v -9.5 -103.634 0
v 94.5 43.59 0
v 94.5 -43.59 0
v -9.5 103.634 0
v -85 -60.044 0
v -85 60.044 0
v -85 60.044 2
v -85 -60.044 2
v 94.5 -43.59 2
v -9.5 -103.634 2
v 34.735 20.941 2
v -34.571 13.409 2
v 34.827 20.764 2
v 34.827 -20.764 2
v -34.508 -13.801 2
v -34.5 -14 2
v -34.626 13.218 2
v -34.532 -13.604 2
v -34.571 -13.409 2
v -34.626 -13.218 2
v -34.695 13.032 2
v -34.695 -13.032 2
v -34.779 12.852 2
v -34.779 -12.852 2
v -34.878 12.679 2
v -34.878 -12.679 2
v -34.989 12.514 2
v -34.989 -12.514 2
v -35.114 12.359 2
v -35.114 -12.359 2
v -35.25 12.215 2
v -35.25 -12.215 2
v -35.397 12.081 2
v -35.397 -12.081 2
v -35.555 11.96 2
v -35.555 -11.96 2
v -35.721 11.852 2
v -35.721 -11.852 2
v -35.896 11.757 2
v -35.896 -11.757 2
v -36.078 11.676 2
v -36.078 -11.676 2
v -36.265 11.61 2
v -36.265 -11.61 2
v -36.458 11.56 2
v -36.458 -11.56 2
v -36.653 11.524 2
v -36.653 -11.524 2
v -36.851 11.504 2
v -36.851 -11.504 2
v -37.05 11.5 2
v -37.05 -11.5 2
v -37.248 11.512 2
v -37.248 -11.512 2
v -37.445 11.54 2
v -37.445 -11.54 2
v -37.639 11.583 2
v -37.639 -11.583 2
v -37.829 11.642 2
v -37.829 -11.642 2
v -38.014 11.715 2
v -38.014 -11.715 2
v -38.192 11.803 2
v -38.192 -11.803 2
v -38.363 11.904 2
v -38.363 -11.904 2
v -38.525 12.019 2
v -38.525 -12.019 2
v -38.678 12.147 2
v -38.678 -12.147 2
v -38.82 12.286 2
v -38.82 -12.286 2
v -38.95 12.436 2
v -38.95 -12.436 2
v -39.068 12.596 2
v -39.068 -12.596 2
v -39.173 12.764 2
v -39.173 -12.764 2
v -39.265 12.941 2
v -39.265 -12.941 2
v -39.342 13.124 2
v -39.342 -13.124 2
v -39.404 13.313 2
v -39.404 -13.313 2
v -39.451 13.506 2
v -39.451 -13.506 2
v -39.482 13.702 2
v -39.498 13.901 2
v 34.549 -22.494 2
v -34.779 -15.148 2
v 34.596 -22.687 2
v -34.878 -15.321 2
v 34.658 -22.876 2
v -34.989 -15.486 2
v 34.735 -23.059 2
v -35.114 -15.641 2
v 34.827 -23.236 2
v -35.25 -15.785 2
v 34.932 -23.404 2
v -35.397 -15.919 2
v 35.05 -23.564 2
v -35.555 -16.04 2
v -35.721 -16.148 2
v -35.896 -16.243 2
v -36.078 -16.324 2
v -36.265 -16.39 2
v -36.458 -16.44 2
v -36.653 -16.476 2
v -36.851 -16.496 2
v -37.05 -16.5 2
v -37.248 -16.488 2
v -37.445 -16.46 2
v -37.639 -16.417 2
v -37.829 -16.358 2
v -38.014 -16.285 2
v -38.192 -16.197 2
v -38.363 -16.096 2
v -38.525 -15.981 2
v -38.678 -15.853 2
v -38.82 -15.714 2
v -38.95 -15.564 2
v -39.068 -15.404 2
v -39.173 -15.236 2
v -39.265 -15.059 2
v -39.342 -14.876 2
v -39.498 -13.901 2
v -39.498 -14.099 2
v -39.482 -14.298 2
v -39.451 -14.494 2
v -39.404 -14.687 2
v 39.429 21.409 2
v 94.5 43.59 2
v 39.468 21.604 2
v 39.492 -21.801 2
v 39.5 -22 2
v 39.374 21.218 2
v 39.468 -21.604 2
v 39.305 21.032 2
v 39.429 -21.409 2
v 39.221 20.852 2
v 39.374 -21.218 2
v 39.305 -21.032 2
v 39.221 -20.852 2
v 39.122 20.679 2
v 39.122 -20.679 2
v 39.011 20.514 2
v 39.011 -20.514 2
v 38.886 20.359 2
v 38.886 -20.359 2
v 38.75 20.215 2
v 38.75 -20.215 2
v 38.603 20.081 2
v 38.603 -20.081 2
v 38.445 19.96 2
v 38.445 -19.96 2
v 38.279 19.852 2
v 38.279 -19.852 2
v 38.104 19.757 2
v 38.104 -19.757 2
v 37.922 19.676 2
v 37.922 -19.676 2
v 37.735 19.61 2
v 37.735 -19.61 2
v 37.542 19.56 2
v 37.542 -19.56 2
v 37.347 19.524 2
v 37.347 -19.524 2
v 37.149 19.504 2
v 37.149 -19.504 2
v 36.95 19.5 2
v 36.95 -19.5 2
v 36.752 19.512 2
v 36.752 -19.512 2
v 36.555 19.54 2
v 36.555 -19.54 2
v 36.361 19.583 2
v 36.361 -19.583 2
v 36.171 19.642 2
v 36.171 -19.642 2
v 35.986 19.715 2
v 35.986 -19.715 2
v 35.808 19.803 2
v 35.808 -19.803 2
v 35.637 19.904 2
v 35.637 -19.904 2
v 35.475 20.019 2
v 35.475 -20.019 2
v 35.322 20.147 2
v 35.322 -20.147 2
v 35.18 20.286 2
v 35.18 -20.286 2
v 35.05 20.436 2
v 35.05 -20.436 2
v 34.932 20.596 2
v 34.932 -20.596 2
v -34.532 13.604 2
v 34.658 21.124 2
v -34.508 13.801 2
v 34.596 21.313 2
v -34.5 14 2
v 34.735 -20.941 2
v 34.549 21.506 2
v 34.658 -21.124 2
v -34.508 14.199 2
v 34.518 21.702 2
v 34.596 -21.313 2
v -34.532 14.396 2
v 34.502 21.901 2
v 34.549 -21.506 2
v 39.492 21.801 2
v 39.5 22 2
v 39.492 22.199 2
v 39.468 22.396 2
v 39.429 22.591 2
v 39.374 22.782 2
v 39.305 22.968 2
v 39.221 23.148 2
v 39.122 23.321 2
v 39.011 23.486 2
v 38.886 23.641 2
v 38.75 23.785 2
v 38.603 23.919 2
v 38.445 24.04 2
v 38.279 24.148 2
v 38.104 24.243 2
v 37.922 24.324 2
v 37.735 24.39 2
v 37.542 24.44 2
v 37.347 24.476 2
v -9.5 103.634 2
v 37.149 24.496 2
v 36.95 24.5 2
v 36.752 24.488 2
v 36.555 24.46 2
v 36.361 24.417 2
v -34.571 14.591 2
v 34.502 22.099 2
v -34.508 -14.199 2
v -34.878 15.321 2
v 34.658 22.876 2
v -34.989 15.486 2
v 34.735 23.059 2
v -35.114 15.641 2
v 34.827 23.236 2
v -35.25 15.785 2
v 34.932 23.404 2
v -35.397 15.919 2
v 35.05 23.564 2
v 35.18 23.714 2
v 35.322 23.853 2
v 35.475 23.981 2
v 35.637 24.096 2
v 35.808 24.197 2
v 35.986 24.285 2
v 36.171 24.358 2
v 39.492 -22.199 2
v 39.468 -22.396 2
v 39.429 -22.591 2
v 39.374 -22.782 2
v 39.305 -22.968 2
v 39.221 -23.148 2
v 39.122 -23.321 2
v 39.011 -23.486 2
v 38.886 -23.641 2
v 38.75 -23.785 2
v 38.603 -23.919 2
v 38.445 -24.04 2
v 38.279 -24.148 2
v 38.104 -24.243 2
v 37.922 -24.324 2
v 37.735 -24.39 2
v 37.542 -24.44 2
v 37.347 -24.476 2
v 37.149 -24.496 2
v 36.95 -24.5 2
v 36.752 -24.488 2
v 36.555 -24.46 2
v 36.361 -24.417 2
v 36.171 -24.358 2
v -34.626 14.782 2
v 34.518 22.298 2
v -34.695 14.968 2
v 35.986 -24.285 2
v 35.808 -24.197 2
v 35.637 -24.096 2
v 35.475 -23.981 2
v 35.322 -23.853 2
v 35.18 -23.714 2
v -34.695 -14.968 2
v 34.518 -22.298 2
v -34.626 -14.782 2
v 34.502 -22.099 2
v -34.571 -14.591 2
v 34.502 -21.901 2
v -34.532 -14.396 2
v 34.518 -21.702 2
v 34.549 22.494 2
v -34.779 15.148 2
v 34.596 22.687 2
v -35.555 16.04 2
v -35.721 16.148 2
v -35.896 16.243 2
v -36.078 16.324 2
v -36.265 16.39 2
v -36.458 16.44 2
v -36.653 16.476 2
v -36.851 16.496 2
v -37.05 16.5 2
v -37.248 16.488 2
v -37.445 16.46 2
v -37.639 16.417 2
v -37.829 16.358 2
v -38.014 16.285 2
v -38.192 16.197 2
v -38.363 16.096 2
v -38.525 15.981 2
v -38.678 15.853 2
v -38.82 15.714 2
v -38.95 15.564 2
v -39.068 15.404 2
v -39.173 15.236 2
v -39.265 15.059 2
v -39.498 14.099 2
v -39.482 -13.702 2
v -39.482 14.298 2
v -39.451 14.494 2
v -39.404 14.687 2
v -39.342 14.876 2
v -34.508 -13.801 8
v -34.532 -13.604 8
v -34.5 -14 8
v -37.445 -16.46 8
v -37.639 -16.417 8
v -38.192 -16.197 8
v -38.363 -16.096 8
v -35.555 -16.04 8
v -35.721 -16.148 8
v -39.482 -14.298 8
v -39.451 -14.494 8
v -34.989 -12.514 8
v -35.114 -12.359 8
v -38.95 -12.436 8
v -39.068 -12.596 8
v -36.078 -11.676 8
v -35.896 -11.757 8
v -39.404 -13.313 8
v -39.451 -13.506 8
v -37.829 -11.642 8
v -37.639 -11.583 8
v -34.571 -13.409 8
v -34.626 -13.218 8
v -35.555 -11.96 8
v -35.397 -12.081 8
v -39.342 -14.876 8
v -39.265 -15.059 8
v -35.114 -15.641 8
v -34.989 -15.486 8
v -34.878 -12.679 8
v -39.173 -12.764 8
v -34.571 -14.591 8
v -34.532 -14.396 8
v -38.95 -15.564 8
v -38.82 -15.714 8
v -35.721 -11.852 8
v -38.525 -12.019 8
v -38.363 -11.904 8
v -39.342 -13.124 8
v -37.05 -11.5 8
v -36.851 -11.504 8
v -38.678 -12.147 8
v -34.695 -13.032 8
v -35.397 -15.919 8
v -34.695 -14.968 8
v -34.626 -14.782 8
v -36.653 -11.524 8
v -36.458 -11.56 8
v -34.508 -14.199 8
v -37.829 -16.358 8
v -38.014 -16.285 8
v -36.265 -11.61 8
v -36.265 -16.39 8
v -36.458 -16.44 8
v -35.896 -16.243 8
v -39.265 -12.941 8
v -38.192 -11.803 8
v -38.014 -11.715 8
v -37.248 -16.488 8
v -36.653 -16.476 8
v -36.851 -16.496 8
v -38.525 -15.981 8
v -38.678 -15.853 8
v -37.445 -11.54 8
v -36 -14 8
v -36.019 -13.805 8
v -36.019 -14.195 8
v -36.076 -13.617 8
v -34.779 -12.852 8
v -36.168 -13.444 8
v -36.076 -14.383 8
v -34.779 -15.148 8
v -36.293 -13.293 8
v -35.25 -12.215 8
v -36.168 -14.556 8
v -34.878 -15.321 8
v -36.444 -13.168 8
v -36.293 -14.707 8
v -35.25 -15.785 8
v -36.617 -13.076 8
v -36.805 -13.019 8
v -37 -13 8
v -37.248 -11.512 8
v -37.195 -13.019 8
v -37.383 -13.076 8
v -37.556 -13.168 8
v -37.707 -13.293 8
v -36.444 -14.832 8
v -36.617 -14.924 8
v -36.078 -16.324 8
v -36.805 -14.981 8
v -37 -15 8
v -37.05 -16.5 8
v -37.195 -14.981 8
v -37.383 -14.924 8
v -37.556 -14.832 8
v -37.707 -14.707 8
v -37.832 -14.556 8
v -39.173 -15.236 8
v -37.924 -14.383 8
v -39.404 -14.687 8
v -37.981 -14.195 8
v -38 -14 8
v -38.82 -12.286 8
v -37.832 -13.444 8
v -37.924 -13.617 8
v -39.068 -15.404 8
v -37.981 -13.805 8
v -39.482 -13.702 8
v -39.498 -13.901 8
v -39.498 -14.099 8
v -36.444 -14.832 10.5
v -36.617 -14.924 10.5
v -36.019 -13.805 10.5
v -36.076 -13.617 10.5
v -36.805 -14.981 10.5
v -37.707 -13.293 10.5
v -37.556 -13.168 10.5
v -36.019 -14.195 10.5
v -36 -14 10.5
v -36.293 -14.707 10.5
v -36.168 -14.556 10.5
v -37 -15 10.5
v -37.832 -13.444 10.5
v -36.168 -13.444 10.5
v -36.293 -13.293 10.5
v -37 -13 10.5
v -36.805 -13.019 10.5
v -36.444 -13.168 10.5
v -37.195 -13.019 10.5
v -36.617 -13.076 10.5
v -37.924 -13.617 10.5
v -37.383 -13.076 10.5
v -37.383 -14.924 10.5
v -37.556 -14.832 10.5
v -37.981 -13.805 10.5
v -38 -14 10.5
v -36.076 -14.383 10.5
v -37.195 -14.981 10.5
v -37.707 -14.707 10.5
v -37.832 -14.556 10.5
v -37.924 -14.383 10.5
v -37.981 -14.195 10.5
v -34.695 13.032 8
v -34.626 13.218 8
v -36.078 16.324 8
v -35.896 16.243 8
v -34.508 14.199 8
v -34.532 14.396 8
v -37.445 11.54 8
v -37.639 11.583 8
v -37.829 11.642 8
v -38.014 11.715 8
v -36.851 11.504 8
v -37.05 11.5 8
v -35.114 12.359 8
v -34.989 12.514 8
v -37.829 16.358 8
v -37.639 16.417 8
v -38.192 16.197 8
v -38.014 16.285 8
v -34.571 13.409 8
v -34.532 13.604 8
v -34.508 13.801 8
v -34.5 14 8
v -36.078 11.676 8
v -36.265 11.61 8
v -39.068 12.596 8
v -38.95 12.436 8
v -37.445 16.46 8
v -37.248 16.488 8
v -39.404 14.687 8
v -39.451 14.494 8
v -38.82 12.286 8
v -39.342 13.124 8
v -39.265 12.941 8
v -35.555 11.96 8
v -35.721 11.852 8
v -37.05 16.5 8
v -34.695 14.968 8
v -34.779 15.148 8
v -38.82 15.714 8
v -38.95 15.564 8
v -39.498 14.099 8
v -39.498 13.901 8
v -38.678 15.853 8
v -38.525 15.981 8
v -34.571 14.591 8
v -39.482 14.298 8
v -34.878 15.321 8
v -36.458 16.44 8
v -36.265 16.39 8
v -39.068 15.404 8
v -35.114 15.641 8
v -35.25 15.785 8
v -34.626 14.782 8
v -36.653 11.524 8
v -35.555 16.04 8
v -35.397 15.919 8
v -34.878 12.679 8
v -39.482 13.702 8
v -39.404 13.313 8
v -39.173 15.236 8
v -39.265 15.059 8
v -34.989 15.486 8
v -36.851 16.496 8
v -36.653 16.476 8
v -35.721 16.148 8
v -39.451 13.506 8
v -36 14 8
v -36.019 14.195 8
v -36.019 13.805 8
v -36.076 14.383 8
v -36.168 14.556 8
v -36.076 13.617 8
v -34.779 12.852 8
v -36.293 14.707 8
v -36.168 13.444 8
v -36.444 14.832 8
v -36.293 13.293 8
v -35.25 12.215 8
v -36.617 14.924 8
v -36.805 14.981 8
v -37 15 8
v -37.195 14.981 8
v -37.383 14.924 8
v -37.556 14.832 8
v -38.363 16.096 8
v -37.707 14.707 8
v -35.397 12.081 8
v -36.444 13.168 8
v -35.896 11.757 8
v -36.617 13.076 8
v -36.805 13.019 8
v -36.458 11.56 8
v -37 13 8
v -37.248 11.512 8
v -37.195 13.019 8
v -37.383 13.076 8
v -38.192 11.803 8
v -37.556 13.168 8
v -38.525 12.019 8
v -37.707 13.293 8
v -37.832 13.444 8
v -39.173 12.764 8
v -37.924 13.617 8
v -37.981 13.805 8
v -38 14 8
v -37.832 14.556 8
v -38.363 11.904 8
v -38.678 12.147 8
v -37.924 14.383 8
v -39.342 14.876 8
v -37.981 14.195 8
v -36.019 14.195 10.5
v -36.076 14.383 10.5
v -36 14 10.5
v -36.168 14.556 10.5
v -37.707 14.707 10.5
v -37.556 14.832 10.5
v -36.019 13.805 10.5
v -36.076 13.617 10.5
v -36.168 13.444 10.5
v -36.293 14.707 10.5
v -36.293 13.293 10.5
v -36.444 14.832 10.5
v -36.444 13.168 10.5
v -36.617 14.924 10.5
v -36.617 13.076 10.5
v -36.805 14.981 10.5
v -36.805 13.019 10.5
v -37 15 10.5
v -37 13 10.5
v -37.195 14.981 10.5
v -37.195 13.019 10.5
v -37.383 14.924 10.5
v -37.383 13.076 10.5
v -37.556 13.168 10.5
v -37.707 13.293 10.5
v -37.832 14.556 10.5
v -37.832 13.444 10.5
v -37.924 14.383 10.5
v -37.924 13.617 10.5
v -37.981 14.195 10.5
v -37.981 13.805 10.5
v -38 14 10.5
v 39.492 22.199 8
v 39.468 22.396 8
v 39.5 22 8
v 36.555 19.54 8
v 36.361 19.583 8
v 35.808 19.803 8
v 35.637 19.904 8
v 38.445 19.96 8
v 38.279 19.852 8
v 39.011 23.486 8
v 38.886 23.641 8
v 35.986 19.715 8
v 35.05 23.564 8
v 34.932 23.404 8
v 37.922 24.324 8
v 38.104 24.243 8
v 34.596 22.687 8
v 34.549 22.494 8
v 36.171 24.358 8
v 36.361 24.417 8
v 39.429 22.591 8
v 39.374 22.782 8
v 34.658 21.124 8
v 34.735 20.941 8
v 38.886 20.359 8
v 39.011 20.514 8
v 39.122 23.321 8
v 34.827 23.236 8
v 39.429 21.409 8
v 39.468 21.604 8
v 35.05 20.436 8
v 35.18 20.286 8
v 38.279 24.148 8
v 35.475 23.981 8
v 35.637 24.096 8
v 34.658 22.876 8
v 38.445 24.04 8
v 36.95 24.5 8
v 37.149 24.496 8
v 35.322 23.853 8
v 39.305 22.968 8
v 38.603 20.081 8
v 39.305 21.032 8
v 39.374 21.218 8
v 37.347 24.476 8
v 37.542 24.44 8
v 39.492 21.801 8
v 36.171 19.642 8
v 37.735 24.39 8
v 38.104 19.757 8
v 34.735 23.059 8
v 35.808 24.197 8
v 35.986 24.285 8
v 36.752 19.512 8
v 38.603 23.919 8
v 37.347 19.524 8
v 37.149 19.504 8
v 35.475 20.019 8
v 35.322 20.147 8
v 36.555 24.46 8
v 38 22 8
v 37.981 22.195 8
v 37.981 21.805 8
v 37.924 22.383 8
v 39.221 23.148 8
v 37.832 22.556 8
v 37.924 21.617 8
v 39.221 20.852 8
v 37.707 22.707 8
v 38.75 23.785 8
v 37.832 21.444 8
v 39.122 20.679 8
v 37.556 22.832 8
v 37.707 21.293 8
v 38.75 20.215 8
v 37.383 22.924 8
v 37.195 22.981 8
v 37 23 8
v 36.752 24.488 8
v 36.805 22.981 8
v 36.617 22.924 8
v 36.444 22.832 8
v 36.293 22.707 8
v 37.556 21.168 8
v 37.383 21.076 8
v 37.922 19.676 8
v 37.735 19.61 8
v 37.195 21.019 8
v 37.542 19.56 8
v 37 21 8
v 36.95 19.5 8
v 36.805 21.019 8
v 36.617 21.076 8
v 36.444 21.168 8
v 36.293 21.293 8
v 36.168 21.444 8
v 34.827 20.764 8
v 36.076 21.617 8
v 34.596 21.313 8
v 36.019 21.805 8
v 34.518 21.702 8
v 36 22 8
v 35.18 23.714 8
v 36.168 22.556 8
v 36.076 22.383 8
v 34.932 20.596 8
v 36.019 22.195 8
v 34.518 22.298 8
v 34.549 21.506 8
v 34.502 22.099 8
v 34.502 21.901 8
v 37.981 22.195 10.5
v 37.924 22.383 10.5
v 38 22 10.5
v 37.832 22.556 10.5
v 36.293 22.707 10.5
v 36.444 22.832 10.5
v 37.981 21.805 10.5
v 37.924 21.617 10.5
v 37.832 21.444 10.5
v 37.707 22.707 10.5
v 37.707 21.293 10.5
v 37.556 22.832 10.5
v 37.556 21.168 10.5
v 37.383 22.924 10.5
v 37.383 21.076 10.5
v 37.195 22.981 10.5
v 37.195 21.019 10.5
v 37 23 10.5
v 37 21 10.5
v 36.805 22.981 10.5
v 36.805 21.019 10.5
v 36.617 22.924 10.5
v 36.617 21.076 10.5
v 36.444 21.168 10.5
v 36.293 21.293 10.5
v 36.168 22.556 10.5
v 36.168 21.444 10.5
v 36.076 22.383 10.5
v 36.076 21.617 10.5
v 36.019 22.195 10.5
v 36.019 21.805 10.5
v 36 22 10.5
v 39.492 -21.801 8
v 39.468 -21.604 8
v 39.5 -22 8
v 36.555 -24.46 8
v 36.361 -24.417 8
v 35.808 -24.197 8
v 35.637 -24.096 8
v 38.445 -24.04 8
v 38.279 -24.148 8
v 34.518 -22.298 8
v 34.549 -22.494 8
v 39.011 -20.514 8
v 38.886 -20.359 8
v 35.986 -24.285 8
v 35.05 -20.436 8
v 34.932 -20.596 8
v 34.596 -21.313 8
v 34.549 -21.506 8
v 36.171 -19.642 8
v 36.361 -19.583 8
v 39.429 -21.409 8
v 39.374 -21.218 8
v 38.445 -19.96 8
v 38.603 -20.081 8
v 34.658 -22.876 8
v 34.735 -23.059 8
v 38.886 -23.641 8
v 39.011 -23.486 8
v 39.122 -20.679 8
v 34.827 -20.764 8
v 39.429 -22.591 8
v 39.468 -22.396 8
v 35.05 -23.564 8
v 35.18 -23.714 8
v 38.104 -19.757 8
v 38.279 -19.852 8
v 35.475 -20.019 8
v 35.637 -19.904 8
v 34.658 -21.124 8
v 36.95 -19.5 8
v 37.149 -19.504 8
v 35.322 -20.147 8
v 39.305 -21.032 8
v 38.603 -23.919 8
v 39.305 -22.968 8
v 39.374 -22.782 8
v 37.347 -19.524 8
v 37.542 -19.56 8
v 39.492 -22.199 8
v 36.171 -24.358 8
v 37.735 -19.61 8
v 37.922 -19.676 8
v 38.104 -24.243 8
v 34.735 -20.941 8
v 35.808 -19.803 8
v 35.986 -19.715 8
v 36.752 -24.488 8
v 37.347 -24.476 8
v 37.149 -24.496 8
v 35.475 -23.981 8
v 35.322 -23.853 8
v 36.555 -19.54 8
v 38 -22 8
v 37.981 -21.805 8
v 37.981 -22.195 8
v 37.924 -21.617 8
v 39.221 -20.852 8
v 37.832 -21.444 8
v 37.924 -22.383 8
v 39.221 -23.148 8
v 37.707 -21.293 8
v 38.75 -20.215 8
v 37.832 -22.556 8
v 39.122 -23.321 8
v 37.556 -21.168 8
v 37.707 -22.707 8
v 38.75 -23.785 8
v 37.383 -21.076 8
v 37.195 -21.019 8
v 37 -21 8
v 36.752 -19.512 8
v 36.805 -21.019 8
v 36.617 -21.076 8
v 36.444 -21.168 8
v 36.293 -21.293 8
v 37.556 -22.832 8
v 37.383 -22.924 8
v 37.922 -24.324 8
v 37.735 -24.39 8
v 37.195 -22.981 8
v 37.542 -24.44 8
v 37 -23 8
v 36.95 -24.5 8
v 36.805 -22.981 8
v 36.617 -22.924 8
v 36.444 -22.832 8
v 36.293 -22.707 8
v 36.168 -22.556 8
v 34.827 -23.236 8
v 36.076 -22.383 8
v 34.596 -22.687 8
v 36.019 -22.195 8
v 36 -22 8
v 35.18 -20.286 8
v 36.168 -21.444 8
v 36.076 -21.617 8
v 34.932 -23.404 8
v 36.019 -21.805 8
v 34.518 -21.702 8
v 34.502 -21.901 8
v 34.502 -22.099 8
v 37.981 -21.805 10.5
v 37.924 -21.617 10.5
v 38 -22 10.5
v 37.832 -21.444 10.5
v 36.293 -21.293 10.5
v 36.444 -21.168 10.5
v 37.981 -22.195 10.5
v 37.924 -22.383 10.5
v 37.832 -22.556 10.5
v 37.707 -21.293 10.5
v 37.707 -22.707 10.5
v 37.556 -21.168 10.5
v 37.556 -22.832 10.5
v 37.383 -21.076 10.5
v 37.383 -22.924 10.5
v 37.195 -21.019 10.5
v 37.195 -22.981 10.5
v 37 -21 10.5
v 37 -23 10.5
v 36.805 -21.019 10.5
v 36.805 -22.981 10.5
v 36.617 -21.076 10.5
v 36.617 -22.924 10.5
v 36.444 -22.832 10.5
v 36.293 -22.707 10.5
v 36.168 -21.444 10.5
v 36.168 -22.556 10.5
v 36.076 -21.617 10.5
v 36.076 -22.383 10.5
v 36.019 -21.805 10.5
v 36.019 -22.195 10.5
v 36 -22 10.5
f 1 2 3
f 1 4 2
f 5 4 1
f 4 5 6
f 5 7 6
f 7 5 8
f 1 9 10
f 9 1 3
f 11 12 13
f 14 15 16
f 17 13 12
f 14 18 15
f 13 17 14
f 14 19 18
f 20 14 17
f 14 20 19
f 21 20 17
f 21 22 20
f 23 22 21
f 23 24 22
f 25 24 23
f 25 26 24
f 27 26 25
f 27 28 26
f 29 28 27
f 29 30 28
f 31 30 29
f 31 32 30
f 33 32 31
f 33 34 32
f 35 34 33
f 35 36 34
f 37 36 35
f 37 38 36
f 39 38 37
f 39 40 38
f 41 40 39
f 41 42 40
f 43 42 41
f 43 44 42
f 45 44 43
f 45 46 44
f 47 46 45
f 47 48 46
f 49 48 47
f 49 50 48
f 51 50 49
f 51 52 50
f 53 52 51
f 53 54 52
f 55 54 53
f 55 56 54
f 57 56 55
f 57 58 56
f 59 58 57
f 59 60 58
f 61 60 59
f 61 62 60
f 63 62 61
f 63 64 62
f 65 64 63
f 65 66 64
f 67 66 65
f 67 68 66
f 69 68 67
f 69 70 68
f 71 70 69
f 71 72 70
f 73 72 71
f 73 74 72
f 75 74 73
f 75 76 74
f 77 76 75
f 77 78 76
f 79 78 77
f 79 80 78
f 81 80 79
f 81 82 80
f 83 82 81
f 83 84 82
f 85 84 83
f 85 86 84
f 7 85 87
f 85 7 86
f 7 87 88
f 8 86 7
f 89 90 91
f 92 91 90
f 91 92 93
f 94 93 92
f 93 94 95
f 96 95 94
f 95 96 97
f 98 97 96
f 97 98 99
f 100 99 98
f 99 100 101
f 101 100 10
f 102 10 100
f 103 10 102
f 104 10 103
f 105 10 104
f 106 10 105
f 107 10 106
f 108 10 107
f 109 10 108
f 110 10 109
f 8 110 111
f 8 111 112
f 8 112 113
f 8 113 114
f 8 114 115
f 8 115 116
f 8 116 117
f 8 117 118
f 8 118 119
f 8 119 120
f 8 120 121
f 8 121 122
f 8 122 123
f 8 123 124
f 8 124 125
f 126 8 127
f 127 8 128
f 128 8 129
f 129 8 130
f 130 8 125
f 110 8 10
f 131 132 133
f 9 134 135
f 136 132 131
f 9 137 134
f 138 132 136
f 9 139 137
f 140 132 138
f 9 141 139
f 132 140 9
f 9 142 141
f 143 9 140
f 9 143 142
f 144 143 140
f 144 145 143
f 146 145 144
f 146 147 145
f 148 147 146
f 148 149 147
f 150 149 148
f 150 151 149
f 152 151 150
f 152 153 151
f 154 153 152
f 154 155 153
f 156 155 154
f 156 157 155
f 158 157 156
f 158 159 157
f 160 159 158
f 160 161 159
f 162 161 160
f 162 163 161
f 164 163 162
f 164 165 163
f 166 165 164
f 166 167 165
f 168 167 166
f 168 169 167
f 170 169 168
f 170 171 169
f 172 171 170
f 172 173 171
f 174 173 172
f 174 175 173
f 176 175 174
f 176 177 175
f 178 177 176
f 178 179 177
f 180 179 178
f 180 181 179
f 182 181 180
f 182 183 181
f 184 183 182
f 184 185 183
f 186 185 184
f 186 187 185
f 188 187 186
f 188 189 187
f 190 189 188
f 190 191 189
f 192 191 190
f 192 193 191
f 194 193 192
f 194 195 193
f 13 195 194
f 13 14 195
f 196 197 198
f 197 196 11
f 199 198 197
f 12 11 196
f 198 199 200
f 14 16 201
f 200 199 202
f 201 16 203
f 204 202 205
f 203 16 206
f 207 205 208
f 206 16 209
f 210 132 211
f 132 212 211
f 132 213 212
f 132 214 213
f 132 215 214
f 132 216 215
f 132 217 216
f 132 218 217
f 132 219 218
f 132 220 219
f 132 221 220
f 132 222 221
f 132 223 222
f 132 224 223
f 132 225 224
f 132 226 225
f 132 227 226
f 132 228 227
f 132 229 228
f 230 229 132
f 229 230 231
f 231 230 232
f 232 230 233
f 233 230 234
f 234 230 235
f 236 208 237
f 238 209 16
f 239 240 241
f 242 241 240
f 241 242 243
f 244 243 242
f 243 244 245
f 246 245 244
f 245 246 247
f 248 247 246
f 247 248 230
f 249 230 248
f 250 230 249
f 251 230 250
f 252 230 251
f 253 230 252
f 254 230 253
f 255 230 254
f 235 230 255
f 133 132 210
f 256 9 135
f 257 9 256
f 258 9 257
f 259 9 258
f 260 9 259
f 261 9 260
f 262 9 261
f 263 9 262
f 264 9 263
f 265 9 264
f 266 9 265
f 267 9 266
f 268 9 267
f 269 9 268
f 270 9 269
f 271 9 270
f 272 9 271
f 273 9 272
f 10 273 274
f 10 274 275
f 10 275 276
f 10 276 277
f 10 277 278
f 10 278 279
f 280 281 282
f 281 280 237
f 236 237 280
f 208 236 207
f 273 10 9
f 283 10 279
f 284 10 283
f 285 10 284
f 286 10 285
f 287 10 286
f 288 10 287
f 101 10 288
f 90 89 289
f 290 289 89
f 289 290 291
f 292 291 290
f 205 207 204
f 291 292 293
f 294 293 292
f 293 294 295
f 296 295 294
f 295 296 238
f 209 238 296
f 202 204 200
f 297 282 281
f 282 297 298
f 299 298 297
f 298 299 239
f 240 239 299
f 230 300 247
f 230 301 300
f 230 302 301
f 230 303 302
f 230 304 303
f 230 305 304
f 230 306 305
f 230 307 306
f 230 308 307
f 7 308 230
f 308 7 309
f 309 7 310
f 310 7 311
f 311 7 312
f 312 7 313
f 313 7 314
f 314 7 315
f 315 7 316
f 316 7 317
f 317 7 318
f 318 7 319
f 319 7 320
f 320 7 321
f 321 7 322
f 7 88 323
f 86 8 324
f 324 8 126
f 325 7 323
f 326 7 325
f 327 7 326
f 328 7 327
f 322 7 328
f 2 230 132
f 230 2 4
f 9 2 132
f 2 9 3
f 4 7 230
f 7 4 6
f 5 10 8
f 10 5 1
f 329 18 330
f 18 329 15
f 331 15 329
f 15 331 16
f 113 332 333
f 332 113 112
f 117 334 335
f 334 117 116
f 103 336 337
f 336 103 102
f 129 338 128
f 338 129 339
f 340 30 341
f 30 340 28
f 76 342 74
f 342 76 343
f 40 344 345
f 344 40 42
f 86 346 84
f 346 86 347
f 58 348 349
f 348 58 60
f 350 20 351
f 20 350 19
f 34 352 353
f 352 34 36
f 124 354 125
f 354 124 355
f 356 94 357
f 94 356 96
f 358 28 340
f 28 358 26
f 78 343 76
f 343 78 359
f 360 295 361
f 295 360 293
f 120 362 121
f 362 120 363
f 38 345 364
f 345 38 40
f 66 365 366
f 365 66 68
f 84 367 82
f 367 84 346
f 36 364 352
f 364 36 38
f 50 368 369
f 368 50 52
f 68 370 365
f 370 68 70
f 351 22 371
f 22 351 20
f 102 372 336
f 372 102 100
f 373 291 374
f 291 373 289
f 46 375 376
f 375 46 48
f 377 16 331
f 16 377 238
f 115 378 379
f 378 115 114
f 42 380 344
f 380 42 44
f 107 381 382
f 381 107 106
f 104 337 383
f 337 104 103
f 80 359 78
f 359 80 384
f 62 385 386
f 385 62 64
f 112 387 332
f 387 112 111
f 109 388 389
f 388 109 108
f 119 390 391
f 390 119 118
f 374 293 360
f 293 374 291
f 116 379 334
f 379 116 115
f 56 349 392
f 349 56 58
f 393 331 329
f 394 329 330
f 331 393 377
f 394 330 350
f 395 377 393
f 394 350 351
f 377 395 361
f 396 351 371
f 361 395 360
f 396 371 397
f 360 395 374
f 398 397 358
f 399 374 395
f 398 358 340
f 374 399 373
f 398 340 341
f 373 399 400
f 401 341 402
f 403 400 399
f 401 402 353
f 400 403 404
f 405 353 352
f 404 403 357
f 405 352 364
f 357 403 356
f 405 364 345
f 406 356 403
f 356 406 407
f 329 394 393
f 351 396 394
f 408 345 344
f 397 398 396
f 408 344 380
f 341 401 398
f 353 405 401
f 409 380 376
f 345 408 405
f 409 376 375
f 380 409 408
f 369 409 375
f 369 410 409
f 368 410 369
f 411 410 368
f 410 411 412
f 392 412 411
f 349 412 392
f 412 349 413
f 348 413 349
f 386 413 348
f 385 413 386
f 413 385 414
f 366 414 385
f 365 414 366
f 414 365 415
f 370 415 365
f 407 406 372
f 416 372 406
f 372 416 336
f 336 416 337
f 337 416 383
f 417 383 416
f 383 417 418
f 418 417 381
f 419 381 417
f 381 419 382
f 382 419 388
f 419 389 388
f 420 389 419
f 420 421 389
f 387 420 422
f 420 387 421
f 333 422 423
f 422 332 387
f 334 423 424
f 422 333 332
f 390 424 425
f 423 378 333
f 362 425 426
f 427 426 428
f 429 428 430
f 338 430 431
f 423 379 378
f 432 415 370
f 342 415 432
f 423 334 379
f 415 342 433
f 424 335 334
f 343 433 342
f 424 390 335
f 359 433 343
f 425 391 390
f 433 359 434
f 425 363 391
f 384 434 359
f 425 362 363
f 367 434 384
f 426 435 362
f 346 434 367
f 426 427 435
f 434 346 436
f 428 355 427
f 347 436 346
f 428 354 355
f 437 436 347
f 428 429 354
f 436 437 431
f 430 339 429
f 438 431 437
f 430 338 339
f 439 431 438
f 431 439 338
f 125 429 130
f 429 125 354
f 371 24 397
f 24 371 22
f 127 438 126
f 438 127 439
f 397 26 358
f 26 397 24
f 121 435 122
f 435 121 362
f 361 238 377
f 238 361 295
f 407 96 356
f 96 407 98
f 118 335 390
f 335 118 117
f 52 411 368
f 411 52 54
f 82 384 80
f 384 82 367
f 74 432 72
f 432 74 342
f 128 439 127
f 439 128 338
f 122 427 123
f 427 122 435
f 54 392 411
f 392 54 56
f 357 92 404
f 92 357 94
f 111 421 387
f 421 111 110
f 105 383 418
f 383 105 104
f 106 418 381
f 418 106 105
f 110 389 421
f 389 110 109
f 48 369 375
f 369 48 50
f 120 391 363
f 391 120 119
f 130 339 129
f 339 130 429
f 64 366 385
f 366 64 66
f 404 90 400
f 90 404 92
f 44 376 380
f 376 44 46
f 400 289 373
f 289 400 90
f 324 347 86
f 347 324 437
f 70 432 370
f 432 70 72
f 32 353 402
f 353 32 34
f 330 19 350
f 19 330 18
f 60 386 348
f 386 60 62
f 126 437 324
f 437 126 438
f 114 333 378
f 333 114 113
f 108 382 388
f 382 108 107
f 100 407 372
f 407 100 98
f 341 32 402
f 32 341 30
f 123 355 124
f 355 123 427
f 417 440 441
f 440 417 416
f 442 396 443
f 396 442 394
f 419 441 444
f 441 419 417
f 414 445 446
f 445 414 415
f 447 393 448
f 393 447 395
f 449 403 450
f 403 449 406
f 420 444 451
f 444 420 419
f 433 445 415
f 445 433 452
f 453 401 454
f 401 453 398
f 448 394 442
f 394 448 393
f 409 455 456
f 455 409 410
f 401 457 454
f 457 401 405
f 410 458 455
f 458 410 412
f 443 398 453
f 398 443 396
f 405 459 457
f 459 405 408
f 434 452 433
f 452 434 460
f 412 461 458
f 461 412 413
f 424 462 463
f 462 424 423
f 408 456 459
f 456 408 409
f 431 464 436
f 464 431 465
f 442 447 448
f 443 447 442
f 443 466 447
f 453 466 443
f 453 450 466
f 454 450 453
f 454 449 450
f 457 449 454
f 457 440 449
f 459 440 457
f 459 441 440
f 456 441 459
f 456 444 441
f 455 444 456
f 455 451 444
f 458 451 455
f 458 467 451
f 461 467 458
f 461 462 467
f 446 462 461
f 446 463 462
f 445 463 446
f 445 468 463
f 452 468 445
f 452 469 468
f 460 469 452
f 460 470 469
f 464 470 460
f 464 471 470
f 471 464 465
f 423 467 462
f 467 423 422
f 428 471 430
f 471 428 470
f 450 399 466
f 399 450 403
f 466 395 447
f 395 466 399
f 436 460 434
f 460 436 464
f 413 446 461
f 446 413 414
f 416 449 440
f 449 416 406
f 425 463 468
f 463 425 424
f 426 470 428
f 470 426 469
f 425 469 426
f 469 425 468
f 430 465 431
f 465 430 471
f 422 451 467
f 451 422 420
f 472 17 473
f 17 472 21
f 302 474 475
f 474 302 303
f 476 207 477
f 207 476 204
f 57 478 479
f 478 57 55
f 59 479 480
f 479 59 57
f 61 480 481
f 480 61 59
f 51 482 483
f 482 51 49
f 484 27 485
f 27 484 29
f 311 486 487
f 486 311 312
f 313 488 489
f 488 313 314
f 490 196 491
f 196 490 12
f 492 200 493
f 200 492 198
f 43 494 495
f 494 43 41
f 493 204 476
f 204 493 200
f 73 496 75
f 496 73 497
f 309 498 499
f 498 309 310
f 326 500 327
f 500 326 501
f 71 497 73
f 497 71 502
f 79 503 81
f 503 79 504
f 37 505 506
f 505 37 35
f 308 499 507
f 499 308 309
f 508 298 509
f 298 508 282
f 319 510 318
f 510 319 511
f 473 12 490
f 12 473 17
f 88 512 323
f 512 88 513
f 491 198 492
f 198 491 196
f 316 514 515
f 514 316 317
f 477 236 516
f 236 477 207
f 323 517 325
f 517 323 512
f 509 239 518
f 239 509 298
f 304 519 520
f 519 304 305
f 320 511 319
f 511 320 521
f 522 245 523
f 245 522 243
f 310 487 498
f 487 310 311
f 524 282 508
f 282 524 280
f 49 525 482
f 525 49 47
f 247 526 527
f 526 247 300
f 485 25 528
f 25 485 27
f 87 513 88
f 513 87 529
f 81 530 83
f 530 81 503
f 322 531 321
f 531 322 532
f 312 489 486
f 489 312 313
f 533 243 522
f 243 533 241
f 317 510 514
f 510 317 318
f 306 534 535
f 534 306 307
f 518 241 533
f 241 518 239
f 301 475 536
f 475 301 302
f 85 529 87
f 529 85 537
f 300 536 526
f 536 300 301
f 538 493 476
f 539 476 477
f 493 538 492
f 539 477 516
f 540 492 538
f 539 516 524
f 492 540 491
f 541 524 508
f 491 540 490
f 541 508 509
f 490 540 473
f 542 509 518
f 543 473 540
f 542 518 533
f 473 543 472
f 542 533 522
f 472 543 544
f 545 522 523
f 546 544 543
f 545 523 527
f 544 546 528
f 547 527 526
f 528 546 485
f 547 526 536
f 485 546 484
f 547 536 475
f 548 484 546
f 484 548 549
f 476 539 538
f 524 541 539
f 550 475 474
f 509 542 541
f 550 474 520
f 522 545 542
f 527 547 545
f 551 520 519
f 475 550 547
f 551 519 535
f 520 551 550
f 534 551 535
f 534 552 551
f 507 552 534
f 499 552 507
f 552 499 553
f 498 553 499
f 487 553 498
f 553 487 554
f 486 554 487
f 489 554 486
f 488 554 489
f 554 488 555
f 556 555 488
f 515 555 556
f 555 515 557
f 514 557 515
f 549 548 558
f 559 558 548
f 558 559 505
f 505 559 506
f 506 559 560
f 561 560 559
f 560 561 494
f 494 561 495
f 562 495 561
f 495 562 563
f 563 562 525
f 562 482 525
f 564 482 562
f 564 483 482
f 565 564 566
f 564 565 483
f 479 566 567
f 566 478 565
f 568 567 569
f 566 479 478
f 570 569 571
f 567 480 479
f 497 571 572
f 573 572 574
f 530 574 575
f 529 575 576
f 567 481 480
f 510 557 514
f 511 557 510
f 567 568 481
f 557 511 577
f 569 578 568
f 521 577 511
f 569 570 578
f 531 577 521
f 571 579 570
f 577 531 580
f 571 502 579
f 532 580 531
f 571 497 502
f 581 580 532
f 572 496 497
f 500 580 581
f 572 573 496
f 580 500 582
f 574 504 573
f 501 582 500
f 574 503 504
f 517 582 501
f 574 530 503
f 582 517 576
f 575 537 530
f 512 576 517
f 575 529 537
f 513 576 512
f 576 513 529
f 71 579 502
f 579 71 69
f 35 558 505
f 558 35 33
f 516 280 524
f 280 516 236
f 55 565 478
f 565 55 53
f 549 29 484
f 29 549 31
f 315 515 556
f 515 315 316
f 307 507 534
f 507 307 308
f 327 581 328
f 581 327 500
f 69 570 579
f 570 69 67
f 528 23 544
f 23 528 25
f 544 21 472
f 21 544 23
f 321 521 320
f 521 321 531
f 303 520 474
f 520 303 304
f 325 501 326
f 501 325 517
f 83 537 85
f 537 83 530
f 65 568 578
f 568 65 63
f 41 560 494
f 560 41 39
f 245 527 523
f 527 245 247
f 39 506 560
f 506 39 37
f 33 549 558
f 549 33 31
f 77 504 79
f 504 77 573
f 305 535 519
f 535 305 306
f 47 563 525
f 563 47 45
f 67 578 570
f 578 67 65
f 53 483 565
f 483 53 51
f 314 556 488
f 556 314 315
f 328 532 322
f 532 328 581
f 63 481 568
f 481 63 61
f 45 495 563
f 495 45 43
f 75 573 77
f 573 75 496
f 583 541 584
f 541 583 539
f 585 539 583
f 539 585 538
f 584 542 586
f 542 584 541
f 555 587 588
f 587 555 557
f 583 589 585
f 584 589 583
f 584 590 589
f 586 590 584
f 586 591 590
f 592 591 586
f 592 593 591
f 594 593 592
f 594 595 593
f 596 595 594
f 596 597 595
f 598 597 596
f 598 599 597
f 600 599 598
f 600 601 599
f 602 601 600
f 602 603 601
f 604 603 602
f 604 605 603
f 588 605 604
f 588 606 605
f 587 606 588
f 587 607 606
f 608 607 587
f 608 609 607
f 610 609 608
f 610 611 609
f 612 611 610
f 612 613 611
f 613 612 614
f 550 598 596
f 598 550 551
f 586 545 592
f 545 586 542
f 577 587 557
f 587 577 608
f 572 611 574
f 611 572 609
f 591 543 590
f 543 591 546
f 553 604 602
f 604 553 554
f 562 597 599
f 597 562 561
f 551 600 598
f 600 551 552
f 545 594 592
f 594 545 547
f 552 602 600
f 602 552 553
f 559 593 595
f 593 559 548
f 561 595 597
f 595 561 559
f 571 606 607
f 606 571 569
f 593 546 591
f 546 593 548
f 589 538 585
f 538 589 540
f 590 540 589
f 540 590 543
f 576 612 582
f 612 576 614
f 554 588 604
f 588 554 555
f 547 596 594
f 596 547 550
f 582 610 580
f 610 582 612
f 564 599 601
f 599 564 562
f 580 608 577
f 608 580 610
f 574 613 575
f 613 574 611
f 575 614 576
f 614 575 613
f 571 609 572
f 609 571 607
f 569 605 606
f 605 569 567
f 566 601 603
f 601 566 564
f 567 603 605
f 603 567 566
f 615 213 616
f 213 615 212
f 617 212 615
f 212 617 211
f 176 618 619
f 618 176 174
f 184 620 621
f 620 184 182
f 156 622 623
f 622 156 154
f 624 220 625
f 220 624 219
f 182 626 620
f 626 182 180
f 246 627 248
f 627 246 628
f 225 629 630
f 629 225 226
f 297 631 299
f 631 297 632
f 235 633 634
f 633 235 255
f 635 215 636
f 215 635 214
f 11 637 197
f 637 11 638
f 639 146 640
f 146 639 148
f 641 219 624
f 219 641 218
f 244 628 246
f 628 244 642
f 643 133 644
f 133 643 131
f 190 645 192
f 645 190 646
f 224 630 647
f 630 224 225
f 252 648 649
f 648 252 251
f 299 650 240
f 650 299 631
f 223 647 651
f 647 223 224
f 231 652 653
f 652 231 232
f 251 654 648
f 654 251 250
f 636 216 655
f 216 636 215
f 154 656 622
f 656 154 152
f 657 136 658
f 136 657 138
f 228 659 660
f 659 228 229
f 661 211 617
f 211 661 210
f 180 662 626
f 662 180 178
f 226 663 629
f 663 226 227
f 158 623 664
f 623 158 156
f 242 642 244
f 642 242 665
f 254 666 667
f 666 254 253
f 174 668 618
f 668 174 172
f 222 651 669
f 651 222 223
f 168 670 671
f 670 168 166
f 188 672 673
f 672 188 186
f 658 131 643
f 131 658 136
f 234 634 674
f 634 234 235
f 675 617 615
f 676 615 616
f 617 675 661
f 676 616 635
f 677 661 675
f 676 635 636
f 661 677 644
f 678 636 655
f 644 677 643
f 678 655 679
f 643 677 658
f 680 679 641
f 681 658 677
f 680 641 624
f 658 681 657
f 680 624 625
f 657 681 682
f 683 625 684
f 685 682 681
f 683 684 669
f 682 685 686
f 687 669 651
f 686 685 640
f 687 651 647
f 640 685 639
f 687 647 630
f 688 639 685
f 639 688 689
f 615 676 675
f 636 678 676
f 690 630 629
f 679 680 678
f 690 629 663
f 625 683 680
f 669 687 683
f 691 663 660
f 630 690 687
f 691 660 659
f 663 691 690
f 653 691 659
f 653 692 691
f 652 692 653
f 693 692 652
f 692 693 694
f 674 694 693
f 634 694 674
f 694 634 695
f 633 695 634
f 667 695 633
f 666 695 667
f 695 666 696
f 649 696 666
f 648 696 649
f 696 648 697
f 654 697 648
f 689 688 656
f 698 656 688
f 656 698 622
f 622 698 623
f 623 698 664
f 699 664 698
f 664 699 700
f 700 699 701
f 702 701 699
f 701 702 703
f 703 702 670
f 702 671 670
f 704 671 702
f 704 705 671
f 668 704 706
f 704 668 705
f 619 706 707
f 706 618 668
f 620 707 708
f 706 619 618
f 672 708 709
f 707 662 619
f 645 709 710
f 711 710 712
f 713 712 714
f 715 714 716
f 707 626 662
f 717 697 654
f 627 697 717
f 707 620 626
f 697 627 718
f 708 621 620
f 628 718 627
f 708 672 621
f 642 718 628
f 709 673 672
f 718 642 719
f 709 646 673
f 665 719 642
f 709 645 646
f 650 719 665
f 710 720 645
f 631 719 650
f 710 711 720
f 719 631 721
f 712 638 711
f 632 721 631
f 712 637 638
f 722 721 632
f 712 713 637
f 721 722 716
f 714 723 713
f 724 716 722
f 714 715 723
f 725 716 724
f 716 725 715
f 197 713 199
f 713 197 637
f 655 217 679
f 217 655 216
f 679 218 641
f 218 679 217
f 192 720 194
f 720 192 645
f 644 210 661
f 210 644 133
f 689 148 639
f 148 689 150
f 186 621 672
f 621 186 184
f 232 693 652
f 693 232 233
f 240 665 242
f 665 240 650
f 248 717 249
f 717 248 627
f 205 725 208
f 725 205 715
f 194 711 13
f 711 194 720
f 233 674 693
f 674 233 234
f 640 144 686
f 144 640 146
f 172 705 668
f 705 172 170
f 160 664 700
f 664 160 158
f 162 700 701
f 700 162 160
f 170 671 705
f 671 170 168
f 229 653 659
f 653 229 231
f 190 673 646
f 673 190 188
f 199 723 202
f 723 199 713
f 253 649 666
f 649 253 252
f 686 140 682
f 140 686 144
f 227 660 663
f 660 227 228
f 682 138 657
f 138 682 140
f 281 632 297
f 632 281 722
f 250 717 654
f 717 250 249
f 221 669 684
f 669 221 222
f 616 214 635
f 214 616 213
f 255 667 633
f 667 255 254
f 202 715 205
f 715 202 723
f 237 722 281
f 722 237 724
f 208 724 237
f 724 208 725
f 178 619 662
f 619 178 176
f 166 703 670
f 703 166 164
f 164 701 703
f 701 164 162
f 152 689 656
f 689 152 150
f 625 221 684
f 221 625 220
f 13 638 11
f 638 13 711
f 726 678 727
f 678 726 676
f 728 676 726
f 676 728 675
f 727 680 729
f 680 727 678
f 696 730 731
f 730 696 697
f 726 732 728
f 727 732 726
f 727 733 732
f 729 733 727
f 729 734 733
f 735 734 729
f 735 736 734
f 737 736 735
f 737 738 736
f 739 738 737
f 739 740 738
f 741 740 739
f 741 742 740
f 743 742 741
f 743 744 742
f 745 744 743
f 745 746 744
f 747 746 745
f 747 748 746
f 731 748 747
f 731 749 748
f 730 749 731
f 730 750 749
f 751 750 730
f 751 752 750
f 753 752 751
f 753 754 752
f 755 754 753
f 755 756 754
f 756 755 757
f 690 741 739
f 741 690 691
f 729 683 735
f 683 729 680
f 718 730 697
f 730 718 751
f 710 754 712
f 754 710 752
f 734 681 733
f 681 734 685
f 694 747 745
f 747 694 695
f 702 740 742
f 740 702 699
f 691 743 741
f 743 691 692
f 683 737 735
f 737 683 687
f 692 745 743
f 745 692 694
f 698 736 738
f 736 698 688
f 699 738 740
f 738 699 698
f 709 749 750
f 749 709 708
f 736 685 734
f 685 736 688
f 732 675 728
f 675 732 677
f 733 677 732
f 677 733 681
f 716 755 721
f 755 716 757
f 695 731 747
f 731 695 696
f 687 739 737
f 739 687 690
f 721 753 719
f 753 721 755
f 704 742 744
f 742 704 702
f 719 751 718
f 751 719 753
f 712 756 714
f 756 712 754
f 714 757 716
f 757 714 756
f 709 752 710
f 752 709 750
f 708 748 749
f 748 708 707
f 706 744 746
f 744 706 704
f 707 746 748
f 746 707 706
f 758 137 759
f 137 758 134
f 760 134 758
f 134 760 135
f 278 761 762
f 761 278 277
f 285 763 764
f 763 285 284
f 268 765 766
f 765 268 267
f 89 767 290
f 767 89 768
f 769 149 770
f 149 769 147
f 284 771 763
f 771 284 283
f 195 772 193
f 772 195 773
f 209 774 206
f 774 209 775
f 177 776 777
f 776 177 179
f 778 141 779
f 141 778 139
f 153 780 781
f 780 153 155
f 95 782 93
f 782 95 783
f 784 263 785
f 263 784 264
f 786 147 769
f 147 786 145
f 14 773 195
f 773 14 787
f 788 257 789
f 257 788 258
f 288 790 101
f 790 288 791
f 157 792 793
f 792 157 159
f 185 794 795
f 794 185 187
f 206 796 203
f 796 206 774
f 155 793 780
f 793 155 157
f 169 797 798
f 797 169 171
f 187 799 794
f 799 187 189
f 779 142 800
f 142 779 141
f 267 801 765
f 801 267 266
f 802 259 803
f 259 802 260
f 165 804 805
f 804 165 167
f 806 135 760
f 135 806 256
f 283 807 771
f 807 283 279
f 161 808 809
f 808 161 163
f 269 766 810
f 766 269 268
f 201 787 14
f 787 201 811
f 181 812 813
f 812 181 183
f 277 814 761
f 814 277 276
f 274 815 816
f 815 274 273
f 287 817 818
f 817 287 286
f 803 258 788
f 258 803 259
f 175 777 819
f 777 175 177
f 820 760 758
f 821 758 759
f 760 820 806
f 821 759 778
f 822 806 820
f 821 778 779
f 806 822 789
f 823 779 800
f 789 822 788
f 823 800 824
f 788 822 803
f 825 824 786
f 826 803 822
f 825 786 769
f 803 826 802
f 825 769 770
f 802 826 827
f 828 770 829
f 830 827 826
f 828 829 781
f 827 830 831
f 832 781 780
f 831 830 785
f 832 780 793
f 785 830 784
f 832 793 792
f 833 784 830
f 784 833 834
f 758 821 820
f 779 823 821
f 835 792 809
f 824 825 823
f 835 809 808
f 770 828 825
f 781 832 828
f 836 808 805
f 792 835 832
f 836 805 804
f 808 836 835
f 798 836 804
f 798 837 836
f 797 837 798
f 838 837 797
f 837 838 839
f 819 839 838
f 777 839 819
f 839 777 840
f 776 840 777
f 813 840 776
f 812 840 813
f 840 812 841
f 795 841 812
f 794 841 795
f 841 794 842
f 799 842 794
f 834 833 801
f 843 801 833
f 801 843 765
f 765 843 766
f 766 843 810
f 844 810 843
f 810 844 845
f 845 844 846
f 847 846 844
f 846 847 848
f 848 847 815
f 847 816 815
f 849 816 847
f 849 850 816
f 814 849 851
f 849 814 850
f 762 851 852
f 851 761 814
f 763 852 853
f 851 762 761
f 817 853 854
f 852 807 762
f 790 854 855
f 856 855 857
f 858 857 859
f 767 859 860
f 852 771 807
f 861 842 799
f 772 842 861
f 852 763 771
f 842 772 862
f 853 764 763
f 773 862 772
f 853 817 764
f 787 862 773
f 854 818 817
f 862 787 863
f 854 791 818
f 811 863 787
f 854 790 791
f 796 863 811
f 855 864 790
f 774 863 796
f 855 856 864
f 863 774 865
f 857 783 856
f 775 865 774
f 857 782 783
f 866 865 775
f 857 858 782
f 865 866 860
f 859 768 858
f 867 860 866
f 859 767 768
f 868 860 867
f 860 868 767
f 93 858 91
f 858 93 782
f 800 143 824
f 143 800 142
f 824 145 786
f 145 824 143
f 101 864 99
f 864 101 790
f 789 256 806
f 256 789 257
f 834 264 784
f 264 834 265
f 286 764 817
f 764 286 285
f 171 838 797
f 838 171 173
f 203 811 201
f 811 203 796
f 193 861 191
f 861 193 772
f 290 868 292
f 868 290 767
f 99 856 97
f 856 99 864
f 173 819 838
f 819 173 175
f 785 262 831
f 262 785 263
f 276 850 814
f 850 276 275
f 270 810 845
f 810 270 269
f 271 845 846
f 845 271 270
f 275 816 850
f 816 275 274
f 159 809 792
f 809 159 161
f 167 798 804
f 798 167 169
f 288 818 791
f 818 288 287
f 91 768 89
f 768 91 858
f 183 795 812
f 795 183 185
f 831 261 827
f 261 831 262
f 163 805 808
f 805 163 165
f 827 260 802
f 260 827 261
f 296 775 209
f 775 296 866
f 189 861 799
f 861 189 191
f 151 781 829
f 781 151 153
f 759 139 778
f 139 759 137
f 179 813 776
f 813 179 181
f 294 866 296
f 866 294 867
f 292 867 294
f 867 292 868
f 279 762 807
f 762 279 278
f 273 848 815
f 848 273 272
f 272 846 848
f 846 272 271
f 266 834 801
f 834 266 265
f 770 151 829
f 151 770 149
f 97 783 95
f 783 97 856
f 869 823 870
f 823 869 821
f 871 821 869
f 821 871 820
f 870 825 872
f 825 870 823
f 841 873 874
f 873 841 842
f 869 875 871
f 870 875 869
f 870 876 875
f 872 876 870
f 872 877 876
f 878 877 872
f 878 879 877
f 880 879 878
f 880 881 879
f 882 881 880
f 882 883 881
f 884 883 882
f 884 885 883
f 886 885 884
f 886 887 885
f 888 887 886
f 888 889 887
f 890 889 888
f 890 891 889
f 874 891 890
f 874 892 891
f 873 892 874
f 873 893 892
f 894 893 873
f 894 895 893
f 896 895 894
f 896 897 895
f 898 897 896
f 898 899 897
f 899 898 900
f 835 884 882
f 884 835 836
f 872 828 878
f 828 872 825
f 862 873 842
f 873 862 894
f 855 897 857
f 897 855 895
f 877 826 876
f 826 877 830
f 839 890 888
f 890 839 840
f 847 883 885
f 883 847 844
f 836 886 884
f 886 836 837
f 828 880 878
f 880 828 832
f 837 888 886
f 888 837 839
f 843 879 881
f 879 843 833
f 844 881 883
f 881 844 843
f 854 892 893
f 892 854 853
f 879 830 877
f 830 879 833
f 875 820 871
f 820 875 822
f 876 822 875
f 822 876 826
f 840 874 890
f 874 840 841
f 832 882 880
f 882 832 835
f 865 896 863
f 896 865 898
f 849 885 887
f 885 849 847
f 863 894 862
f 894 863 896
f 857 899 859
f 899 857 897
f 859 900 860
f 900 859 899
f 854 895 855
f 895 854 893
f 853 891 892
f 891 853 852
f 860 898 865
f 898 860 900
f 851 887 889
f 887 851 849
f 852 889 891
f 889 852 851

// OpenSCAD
$fs = .2;
$fa = 2;
module triangle(side, thickness) {
 radius = 2 * side * cos(60);
 x0 = radius * cos(0);
 y0 = radius * sin(0);
 x1 = radius * cos(120);
 y1 = radius * sin(120);
 x2 = radius * cos(240);
 y2 = radius * sin(240);
 linear_extrude(height=thickness) {
   polygon(points=[[x0,y0],[x1,y1], [x2,y2]]);
 }
}

board_len = 80;
board_wid = 50;
board_thk = 1;
standoff_hgt = 6;
standoff_rad = 2.5;
mnt_hgt = 2.5;
mnt_rad = 1;
base_thk = 2;
base_side = 170;

servo_cc =  38;
servo_wid = 12;
trim_side = servo_cc + servo_wid;

module servos(x) {
    translate([x, 30,board_thk]) cube([20, 12,25]);
    translate([x,-37,board_thk]) cube([20, 12,25]);
}

module standoff(x,y) {
  translate([x,y,0]) {
    cylinder(standoff_hgt, standoff_rad,standoff_rad);
    cylinder(standoff_hgt+mnt_hgt, mnt_rad, mnt_rad);
  }
}

module arduino() {
    translate([-40,-25,0]) {
  //      translate([0,0,standoff_hgt]) 
  //         cube([board_len,board_wid,board_thk]);
        standoff(3,11);             // ok
        standoff(3,board_wid-11);   // 31 ok
        standoff(board_len-3,board_wid-3); // 33 -> 44
        standoff(board_len-3, 3);   //10
    }
}

difference() {
 triangle(base_side,base_thk);
 translate([base_side-trim_side,0,-1]) 
    triangle(trim_side+1,base_thk+2);
 rotate([0,0,120]) 
    translate([base_side-trim_side,,0,-1]) 
    triangle(trim_side+1,base_thk+2);
 rotate([0,0,240]) 
    translate([base_side-trim_side,,0,-1]) 
    triangle(trim_side+1,base_thk+2);
}
translate([0,0,base_thk]) color("red") arduino();
                  //color("green") servos(74.3);
//rotate([0,0,120]) color("green") servos(74.3);
//rotate([0,0,240]) color("green") servos(74.3);
